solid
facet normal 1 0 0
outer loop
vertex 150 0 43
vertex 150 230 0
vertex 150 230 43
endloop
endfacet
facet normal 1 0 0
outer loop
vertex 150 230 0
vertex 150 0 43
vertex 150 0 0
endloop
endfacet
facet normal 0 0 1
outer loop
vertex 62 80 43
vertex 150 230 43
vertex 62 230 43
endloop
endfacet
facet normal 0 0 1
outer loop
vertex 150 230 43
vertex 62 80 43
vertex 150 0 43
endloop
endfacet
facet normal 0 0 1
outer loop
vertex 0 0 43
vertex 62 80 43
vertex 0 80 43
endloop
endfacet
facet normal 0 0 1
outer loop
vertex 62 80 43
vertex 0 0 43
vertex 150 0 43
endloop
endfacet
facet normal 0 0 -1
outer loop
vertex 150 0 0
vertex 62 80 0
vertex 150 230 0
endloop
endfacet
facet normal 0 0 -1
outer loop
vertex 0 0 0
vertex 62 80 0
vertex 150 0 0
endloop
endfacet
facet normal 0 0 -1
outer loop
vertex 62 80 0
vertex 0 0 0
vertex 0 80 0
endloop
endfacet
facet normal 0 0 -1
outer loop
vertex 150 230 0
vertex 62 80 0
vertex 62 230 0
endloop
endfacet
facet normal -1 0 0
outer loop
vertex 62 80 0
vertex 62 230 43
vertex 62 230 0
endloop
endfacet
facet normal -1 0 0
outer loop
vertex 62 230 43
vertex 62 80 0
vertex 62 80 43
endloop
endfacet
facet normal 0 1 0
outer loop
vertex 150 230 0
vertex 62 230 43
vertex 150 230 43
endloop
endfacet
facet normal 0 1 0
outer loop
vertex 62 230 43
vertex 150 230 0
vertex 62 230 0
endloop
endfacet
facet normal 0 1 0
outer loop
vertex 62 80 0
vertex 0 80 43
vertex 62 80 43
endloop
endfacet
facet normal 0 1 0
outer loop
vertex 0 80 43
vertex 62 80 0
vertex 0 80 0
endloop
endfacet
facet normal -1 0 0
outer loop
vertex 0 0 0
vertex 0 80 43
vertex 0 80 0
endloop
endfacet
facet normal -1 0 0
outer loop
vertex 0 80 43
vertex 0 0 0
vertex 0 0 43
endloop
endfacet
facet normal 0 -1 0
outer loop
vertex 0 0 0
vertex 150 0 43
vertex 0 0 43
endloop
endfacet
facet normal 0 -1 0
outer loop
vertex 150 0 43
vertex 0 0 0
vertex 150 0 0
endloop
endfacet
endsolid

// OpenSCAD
gauc_vyska = 43;
gauc_A_delka = 150;
gauc_A_sirka = 88;
gauc_B_delka = 150;
gauc_B_sirka = 80;

module gauc() {
    color("gray")
    translate([gauc_B_delka-gauc_A_sirka, gauc_B_sirka, 0])
    cube([gauc_A_sirka, gauc_A_delka, gauc_vyska]);
    
    
    color("gray")
    cube([gauc_B_delka, gauc_B_sirka, gauc_vyska]);
}

gauc();
